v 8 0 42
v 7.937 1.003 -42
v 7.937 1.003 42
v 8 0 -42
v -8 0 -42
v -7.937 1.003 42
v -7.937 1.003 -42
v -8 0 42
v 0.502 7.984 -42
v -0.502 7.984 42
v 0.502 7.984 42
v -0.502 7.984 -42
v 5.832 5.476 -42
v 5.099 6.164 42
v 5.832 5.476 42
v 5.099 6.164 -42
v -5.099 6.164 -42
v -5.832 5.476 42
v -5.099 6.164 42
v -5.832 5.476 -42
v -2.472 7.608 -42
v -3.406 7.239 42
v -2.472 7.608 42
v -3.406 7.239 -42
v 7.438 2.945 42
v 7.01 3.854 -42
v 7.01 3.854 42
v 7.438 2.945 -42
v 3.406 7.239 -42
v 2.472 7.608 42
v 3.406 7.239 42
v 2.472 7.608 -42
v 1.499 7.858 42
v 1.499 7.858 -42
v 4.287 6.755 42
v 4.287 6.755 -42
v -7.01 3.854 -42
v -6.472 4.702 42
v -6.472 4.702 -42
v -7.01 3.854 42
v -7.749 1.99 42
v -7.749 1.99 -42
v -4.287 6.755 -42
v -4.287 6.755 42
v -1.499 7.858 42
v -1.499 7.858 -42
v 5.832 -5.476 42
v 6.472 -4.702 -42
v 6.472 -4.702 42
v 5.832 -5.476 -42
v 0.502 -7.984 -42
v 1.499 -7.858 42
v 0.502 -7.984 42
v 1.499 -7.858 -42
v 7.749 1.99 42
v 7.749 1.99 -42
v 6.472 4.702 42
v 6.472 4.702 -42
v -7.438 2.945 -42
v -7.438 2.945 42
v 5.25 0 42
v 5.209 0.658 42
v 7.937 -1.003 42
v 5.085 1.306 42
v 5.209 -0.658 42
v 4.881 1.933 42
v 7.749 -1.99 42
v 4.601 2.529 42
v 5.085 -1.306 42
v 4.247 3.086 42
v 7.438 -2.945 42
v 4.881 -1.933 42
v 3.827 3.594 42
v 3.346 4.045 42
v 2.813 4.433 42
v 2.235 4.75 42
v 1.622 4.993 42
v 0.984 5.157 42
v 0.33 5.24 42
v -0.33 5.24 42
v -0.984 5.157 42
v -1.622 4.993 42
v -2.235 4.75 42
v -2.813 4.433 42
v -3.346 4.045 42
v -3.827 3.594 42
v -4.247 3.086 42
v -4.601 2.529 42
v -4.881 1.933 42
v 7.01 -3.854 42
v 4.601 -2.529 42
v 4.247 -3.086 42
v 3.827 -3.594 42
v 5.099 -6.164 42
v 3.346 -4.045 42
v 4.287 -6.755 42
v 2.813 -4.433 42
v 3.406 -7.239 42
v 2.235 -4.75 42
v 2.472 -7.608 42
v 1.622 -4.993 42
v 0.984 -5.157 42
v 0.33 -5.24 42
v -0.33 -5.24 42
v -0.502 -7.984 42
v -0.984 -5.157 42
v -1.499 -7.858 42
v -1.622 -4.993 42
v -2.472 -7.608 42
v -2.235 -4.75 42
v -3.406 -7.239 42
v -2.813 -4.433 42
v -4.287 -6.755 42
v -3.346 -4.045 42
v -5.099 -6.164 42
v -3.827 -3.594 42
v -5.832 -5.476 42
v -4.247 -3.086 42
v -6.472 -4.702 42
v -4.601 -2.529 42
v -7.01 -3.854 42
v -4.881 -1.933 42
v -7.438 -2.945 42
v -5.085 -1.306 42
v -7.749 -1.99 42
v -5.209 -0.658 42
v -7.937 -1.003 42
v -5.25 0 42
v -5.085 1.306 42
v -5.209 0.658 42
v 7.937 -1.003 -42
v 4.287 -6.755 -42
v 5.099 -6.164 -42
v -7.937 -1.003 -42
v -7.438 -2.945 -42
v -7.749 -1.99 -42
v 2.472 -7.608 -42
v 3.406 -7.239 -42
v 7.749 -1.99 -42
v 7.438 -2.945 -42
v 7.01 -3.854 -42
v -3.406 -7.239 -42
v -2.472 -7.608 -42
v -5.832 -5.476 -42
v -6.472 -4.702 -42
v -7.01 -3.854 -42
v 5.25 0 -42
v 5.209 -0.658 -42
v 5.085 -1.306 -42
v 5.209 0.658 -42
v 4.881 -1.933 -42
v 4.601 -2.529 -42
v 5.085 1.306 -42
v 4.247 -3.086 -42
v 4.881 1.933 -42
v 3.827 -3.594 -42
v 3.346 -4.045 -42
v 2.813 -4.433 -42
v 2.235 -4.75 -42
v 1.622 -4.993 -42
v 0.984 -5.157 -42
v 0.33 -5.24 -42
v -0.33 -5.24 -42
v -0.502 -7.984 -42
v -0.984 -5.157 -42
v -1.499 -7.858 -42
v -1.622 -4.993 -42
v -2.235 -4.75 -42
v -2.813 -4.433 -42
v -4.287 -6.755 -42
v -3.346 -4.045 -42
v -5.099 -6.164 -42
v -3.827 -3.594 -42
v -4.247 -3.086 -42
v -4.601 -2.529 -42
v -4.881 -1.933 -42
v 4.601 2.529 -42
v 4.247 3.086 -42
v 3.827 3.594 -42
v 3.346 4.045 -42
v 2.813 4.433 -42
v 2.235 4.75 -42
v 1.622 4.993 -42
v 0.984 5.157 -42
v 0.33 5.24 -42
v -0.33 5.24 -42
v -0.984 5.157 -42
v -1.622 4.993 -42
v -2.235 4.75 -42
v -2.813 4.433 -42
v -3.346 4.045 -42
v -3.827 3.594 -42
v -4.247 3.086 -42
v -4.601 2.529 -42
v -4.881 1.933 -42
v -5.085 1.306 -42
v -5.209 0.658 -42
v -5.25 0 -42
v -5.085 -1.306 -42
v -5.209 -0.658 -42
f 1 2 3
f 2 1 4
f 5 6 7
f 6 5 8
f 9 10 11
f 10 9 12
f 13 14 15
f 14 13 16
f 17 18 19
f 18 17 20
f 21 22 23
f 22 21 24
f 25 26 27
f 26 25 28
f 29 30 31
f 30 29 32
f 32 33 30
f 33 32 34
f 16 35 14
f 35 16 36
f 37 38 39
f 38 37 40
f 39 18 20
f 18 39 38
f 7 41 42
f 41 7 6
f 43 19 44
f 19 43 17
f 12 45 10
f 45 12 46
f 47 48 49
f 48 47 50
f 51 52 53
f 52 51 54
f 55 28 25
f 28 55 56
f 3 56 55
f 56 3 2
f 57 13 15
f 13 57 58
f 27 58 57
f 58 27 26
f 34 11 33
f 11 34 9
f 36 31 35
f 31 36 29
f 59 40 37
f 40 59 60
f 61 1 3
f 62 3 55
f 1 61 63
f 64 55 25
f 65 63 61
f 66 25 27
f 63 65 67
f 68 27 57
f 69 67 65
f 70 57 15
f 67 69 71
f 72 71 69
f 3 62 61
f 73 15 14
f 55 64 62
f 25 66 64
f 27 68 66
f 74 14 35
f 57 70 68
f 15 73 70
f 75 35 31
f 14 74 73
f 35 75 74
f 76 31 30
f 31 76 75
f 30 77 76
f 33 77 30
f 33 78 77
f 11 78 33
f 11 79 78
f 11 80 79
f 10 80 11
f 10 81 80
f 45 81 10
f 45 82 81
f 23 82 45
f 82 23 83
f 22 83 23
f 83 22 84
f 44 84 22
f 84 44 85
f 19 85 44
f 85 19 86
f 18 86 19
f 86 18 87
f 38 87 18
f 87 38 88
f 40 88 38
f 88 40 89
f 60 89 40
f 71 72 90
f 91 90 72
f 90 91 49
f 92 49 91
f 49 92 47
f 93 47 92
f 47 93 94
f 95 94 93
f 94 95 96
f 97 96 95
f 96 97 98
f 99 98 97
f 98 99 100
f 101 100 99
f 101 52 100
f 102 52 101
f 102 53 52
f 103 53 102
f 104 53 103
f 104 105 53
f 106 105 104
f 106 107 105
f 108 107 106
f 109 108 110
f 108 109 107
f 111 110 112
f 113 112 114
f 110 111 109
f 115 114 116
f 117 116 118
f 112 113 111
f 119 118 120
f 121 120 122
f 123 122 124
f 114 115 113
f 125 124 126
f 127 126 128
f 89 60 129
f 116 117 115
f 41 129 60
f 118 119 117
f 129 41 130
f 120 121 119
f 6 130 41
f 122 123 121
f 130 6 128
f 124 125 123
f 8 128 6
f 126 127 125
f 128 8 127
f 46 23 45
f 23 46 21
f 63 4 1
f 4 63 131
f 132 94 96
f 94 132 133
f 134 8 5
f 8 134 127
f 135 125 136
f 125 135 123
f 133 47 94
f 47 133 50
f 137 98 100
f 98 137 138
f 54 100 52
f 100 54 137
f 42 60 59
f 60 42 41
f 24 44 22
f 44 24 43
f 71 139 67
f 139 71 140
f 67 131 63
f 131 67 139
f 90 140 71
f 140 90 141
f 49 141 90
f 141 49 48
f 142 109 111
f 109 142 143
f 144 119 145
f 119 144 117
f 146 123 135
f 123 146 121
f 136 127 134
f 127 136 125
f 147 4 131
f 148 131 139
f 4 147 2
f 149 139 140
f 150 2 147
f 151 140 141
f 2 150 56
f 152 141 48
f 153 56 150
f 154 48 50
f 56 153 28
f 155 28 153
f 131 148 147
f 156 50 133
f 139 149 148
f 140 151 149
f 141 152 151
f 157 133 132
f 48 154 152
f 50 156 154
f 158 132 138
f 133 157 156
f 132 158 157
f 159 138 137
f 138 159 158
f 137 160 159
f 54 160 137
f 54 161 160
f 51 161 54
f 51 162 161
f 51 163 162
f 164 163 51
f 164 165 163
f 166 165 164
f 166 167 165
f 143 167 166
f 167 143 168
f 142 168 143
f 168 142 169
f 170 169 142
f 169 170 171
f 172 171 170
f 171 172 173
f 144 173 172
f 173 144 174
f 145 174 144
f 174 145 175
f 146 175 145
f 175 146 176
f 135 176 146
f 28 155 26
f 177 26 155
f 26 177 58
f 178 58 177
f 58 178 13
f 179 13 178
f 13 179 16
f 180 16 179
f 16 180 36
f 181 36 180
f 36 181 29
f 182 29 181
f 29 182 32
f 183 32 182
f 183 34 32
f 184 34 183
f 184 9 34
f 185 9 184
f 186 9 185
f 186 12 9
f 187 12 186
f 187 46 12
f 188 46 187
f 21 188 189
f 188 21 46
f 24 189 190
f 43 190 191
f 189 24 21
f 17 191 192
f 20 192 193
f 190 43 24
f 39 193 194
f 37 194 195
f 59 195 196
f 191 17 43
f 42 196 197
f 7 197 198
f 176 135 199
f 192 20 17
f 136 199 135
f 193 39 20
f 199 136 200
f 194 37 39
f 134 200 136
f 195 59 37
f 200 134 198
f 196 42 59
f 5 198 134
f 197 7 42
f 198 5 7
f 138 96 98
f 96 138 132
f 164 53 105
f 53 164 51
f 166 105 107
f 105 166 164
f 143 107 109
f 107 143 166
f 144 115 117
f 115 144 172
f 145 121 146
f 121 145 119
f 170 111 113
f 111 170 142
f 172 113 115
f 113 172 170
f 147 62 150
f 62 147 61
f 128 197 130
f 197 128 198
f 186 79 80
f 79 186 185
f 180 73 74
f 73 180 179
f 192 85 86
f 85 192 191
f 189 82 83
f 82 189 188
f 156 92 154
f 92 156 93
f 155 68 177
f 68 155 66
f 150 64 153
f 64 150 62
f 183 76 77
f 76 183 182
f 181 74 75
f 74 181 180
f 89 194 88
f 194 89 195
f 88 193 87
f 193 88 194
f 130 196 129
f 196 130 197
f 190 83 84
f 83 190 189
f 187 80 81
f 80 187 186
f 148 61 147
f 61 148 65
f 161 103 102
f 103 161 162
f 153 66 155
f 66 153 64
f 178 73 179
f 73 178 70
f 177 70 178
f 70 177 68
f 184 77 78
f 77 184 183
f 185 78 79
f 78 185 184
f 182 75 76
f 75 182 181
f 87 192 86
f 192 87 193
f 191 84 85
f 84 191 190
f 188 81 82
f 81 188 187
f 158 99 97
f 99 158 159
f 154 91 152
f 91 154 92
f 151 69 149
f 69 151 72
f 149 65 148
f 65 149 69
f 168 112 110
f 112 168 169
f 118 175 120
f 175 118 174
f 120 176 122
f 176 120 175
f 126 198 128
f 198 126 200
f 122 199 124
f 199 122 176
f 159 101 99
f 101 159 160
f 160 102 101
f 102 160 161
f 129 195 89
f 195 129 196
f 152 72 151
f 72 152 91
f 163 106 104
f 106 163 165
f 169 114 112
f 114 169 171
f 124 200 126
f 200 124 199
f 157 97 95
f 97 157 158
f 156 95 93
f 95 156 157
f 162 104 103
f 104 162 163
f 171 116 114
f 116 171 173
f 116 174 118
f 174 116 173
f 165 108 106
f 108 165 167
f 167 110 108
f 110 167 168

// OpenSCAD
$fn = 50;


difference() {
	union() {
		translate(v = [0, 0, -42.0000000000]) {
			cylinder(h = 84, r = 8.0000000000);
		}
	}
	union() {
		translate(v = [0, 0, -100.0000000000]) {
			cylinder(h = 200, r = 5.2500000000);
		}
	}
}
